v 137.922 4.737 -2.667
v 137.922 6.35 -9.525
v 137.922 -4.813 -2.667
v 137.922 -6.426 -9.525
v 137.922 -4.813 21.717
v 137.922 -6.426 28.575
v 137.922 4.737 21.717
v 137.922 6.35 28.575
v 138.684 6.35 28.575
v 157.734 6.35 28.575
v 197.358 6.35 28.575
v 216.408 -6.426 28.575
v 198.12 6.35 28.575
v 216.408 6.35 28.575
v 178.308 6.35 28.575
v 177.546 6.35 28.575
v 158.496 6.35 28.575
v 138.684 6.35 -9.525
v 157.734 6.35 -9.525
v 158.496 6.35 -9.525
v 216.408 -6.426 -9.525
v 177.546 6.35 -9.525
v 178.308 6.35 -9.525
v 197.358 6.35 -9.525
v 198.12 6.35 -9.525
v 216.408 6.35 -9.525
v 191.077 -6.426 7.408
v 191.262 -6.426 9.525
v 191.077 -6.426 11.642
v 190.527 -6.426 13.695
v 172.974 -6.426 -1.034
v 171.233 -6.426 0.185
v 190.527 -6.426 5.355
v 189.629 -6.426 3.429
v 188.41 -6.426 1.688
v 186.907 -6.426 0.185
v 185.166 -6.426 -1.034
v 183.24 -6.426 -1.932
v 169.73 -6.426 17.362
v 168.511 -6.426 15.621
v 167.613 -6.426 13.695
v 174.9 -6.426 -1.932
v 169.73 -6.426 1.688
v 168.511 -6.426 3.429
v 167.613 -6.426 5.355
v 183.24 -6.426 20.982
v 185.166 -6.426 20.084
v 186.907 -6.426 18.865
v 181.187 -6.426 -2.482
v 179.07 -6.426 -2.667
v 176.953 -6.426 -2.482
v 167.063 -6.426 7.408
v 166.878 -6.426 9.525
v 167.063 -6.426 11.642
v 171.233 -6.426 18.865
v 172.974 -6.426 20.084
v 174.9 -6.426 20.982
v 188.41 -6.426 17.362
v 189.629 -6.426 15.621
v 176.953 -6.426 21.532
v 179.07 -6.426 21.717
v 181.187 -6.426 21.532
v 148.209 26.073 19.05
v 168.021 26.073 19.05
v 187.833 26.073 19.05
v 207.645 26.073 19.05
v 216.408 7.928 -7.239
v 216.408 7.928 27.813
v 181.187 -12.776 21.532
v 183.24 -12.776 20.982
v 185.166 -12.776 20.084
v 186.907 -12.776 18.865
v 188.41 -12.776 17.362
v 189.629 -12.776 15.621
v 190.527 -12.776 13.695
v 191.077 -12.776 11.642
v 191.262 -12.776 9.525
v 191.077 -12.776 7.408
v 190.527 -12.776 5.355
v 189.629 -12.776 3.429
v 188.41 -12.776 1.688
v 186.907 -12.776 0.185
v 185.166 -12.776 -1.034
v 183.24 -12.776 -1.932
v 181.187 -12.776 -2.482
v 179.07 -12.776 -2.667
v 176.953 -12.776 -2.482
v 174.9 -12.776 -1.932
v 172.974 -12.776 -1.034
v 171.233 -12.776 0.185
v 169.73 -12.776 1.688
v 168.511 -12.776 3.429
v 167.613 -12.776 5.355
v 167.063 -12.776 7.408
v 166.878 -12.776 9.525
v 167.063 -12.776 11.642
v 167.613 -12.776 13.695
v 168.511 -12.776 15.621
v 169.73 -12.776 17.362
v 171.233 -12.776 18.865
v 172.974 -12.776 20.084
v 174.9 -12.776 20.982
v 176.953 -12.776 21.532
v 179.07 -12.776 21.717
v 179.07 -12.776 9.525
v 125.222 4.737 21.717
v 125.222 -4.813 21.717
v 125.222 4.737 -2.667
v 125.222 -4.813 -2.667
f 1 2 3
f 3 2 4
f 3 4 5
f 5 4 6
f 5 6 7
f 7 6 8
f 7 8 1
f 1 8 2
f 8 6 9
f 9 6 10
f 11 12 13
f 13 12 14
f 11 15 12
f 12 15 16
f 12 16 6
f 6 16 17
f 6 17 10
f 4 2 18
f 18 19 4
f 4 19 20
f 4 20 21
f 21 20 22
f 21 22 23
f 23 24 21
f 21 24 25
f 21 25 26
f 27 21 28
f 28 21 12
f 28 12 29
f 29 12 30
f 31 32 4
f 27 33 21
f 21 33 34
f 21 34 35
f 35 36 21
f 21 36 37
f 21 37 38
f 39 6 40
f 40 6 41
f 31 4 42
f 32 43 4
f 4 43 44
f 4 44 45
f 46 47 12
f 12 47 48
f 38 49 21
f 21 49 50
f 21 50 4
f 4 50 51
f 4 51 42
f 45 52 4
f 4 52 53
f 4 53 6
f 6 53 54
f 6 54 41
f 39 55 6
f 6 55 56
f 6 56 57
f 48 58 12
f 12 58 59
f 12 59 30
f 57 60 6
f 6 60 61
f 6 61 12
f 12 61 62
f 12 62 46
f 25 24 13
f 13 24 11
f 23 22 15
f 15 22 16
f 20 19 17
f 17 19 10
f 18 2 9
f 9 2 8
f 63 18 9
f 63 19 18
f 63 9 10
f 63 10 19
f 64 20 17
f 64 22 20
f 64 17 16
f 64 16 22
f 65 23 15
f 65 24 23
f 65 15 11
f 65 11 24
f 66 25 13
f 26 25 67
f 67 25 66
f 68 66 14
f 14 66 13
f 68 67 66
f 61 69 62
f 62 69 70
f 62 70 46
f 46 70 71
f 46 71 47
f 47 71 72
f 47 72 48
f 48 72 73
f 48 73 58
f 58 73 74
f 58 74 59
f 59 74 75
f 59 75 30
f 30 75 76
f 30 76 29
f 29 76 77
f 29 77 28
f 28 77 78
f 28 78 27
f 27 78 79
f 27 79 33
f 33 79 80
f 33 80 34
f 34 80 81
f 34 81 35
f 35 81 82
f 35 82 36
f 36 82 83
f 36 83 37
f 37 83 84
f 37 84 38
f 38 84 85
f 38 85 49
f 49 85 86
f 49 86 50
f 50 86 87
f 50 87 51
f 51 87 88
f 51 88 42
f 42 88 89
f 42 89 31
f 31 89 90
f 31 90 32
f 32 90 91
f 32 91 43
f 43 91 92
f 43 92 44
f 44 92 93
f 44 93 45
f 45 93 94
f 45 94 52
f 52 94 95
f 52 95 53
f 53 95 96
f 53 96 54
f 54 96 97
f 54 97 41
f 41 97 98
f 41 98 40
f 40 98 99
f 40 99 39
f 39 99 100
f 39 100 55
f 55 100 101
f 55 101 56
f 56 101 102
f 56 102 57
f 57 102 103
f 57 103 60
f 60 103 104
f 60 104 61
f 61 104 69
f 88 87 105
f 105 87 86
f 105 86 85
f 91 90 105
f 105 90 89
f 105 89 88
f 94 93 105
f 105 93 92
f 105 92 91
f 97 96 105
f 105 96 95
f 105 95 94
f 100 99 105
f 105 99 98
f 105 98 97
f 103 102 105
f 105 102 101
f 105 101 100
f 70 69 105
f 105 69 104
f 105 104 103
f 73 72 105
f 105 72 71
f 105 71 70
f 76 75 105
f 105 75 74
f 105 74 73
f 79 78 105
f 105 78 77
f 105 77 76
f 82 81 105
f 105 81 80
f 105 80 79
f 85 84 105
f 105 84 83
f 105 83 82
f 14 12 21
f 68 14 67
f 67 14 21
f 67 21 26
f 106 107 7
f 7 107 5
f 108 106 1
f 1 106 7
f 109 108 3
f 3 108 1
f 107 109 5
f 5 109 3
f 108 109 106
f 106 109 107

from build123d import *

# Parameters (mm, degrees)
SKETCH1_W           = 19.05
SKETCH1_H           = 19.05
BOSS_EXTRUDE2_DEPTH = 6.35
SKETCH8_W           = 217.17
SKETCH8_H           = 38.1
BOSS_EXTRUDE4_DEPTH = 6.35
SKETCH8_5_W         = 217.17
SKETCH8_5_H         = 38.1
BOSS_EXTRUDE5_DEPTH = 6.4262
SKETCH9_W           = 19.05
SKETCH9_H           = 38.1
LPATTERN3_COUNT     = 11
LPATTERN3_PITCH     = 19.812
SKETCH15_R          = 12.192
BOSS_EXTRUDE6_DEPTH = 6.35
SKETCH16_W          = 38.1
SKETCH16_H          = 22.073264639
CUT_EXTRUDE1_DEPTH  = 3.302
SKETCH17_W          = 61.644203732
SKETCH17_H          = 46.422477749
CUT_EXTRUDE2_DEPTH  = 137.922
SKETCH18_W          = 24.384
SKETCH18_H          = 9.5504
BOSS_EXTRUDE7_DEPTH = 12.7


with BuildPart() as part:
    # Sketch1 → Boss-Extrude2 (new body)
    with BuildSketch(Plane(origin=(0, 0, 0), x_dir=(1, 0, 0), z_dir=(0, 1, 0))):
        with Locations((9.525, -9.525)):
            Rectangle(SKETCH1_W, SKETCH1_H)
    extrude(amount=BOSS_EXTRUDE2_DEPTH)

    # Sketch8 → Boss-Extrude4 (add)
    with BuildSketch(Plane(origin=(0, 0, 0), x_dir=(1, 0, 0), z_dir=(0, 1, 0))):
        with Locations((108.585, -9.525)):
            Rectangle(SKETCH8_W, SKETCH8_H)
    extrude(amount=BOSS_EXTRUDE4_DEPTH)

    # Sketch8<5> → Boss-Extrude5 (add)
    with BuildSketch(Plane(origin=(0, 0, 0), x_dir=(1, 0, 0), z_dir=(0, 1, 0))):
        with Locations((108.585, -9.525)):
            Rectangle(SKETCH8_5_W, SKETCH8_5_H)
    extrude(amount=-BOSS_EXTRUDE5_DEPTH)

    # Sketch9 → Loft3 section 0
    with BuildSketch(Plane(origin=(0, 6.35, 0), x_dir=(1, 0, 0), z_dir=(0, 1, 0)), mode=Mode.PRIVATE) as loft3_s0:
        with Locations((9.525, -9.525)):
            Rectangle(SKETCH9_W, SKETCH9_H)
    loft3 = loft([loft3_s0.sketch, Vertex(9.525, 26.0731, 19.05)])

    # LPattern3: Loft3 ×11
    with Locations(*[(i * LPATTERN3_PITCH, 0, 0) for i in range(1, LPATTERN3_COUNT)]):
        add(loft3)

    # Sketch15 → Boss-Extrude6 (add)
    with BuildSketch(Plane.XZ.offset(6.4262)):
        with Locations((179.07, 9.525)):
            Circle(SKETCH15_R)
        with Locations((38.1, 9.525)):
            Circle(SKETCH15_R)
        with Locations((108.585, 9.525)):
            Circle(SKETCH15_R)
    extrude(amount=BOSS_EXTRUDE6_DEPTH)

    # Sketch16 → Cut-Extrude1 (cut)
    with BuildSketch(Plane(origin=(219.71, 0, 0), x_dir=(0, 0, -1), z_dir=(1, 0, 0))):
        with Locations((-9.525, 4.61043232)):
            Rectangle(SKETCH16_W, SKETCH16_H)
    extrude(amount=-CUT_EXTRUDE1_DEPTH, mode=Mode.SUBTRACT)

    # Sketch17 → Cut-Extrude2 (cut)
    with BuildSketch(Plane.ZY):
        with Locations((9.467504242, 6.577579821)):
            Rectangle(SKETCH17_W, SKETCH17_H)
    extrude(amount=-CUT_EXTRUDE2_DEPTH, mode=Mode.SUBTRACT)

    # Sketch18 → Boss-Extrude7 (add)
    with BuildSketch(Plane.ZY.offset(-137.922)):
        with Locations((9.525, -0.0381)):
            Rectangle(SKETCH18_W, SKETCH18_H)
    extrude(amount=BOSS_EXTRUDE7_DEPTH)


solid = part.part
